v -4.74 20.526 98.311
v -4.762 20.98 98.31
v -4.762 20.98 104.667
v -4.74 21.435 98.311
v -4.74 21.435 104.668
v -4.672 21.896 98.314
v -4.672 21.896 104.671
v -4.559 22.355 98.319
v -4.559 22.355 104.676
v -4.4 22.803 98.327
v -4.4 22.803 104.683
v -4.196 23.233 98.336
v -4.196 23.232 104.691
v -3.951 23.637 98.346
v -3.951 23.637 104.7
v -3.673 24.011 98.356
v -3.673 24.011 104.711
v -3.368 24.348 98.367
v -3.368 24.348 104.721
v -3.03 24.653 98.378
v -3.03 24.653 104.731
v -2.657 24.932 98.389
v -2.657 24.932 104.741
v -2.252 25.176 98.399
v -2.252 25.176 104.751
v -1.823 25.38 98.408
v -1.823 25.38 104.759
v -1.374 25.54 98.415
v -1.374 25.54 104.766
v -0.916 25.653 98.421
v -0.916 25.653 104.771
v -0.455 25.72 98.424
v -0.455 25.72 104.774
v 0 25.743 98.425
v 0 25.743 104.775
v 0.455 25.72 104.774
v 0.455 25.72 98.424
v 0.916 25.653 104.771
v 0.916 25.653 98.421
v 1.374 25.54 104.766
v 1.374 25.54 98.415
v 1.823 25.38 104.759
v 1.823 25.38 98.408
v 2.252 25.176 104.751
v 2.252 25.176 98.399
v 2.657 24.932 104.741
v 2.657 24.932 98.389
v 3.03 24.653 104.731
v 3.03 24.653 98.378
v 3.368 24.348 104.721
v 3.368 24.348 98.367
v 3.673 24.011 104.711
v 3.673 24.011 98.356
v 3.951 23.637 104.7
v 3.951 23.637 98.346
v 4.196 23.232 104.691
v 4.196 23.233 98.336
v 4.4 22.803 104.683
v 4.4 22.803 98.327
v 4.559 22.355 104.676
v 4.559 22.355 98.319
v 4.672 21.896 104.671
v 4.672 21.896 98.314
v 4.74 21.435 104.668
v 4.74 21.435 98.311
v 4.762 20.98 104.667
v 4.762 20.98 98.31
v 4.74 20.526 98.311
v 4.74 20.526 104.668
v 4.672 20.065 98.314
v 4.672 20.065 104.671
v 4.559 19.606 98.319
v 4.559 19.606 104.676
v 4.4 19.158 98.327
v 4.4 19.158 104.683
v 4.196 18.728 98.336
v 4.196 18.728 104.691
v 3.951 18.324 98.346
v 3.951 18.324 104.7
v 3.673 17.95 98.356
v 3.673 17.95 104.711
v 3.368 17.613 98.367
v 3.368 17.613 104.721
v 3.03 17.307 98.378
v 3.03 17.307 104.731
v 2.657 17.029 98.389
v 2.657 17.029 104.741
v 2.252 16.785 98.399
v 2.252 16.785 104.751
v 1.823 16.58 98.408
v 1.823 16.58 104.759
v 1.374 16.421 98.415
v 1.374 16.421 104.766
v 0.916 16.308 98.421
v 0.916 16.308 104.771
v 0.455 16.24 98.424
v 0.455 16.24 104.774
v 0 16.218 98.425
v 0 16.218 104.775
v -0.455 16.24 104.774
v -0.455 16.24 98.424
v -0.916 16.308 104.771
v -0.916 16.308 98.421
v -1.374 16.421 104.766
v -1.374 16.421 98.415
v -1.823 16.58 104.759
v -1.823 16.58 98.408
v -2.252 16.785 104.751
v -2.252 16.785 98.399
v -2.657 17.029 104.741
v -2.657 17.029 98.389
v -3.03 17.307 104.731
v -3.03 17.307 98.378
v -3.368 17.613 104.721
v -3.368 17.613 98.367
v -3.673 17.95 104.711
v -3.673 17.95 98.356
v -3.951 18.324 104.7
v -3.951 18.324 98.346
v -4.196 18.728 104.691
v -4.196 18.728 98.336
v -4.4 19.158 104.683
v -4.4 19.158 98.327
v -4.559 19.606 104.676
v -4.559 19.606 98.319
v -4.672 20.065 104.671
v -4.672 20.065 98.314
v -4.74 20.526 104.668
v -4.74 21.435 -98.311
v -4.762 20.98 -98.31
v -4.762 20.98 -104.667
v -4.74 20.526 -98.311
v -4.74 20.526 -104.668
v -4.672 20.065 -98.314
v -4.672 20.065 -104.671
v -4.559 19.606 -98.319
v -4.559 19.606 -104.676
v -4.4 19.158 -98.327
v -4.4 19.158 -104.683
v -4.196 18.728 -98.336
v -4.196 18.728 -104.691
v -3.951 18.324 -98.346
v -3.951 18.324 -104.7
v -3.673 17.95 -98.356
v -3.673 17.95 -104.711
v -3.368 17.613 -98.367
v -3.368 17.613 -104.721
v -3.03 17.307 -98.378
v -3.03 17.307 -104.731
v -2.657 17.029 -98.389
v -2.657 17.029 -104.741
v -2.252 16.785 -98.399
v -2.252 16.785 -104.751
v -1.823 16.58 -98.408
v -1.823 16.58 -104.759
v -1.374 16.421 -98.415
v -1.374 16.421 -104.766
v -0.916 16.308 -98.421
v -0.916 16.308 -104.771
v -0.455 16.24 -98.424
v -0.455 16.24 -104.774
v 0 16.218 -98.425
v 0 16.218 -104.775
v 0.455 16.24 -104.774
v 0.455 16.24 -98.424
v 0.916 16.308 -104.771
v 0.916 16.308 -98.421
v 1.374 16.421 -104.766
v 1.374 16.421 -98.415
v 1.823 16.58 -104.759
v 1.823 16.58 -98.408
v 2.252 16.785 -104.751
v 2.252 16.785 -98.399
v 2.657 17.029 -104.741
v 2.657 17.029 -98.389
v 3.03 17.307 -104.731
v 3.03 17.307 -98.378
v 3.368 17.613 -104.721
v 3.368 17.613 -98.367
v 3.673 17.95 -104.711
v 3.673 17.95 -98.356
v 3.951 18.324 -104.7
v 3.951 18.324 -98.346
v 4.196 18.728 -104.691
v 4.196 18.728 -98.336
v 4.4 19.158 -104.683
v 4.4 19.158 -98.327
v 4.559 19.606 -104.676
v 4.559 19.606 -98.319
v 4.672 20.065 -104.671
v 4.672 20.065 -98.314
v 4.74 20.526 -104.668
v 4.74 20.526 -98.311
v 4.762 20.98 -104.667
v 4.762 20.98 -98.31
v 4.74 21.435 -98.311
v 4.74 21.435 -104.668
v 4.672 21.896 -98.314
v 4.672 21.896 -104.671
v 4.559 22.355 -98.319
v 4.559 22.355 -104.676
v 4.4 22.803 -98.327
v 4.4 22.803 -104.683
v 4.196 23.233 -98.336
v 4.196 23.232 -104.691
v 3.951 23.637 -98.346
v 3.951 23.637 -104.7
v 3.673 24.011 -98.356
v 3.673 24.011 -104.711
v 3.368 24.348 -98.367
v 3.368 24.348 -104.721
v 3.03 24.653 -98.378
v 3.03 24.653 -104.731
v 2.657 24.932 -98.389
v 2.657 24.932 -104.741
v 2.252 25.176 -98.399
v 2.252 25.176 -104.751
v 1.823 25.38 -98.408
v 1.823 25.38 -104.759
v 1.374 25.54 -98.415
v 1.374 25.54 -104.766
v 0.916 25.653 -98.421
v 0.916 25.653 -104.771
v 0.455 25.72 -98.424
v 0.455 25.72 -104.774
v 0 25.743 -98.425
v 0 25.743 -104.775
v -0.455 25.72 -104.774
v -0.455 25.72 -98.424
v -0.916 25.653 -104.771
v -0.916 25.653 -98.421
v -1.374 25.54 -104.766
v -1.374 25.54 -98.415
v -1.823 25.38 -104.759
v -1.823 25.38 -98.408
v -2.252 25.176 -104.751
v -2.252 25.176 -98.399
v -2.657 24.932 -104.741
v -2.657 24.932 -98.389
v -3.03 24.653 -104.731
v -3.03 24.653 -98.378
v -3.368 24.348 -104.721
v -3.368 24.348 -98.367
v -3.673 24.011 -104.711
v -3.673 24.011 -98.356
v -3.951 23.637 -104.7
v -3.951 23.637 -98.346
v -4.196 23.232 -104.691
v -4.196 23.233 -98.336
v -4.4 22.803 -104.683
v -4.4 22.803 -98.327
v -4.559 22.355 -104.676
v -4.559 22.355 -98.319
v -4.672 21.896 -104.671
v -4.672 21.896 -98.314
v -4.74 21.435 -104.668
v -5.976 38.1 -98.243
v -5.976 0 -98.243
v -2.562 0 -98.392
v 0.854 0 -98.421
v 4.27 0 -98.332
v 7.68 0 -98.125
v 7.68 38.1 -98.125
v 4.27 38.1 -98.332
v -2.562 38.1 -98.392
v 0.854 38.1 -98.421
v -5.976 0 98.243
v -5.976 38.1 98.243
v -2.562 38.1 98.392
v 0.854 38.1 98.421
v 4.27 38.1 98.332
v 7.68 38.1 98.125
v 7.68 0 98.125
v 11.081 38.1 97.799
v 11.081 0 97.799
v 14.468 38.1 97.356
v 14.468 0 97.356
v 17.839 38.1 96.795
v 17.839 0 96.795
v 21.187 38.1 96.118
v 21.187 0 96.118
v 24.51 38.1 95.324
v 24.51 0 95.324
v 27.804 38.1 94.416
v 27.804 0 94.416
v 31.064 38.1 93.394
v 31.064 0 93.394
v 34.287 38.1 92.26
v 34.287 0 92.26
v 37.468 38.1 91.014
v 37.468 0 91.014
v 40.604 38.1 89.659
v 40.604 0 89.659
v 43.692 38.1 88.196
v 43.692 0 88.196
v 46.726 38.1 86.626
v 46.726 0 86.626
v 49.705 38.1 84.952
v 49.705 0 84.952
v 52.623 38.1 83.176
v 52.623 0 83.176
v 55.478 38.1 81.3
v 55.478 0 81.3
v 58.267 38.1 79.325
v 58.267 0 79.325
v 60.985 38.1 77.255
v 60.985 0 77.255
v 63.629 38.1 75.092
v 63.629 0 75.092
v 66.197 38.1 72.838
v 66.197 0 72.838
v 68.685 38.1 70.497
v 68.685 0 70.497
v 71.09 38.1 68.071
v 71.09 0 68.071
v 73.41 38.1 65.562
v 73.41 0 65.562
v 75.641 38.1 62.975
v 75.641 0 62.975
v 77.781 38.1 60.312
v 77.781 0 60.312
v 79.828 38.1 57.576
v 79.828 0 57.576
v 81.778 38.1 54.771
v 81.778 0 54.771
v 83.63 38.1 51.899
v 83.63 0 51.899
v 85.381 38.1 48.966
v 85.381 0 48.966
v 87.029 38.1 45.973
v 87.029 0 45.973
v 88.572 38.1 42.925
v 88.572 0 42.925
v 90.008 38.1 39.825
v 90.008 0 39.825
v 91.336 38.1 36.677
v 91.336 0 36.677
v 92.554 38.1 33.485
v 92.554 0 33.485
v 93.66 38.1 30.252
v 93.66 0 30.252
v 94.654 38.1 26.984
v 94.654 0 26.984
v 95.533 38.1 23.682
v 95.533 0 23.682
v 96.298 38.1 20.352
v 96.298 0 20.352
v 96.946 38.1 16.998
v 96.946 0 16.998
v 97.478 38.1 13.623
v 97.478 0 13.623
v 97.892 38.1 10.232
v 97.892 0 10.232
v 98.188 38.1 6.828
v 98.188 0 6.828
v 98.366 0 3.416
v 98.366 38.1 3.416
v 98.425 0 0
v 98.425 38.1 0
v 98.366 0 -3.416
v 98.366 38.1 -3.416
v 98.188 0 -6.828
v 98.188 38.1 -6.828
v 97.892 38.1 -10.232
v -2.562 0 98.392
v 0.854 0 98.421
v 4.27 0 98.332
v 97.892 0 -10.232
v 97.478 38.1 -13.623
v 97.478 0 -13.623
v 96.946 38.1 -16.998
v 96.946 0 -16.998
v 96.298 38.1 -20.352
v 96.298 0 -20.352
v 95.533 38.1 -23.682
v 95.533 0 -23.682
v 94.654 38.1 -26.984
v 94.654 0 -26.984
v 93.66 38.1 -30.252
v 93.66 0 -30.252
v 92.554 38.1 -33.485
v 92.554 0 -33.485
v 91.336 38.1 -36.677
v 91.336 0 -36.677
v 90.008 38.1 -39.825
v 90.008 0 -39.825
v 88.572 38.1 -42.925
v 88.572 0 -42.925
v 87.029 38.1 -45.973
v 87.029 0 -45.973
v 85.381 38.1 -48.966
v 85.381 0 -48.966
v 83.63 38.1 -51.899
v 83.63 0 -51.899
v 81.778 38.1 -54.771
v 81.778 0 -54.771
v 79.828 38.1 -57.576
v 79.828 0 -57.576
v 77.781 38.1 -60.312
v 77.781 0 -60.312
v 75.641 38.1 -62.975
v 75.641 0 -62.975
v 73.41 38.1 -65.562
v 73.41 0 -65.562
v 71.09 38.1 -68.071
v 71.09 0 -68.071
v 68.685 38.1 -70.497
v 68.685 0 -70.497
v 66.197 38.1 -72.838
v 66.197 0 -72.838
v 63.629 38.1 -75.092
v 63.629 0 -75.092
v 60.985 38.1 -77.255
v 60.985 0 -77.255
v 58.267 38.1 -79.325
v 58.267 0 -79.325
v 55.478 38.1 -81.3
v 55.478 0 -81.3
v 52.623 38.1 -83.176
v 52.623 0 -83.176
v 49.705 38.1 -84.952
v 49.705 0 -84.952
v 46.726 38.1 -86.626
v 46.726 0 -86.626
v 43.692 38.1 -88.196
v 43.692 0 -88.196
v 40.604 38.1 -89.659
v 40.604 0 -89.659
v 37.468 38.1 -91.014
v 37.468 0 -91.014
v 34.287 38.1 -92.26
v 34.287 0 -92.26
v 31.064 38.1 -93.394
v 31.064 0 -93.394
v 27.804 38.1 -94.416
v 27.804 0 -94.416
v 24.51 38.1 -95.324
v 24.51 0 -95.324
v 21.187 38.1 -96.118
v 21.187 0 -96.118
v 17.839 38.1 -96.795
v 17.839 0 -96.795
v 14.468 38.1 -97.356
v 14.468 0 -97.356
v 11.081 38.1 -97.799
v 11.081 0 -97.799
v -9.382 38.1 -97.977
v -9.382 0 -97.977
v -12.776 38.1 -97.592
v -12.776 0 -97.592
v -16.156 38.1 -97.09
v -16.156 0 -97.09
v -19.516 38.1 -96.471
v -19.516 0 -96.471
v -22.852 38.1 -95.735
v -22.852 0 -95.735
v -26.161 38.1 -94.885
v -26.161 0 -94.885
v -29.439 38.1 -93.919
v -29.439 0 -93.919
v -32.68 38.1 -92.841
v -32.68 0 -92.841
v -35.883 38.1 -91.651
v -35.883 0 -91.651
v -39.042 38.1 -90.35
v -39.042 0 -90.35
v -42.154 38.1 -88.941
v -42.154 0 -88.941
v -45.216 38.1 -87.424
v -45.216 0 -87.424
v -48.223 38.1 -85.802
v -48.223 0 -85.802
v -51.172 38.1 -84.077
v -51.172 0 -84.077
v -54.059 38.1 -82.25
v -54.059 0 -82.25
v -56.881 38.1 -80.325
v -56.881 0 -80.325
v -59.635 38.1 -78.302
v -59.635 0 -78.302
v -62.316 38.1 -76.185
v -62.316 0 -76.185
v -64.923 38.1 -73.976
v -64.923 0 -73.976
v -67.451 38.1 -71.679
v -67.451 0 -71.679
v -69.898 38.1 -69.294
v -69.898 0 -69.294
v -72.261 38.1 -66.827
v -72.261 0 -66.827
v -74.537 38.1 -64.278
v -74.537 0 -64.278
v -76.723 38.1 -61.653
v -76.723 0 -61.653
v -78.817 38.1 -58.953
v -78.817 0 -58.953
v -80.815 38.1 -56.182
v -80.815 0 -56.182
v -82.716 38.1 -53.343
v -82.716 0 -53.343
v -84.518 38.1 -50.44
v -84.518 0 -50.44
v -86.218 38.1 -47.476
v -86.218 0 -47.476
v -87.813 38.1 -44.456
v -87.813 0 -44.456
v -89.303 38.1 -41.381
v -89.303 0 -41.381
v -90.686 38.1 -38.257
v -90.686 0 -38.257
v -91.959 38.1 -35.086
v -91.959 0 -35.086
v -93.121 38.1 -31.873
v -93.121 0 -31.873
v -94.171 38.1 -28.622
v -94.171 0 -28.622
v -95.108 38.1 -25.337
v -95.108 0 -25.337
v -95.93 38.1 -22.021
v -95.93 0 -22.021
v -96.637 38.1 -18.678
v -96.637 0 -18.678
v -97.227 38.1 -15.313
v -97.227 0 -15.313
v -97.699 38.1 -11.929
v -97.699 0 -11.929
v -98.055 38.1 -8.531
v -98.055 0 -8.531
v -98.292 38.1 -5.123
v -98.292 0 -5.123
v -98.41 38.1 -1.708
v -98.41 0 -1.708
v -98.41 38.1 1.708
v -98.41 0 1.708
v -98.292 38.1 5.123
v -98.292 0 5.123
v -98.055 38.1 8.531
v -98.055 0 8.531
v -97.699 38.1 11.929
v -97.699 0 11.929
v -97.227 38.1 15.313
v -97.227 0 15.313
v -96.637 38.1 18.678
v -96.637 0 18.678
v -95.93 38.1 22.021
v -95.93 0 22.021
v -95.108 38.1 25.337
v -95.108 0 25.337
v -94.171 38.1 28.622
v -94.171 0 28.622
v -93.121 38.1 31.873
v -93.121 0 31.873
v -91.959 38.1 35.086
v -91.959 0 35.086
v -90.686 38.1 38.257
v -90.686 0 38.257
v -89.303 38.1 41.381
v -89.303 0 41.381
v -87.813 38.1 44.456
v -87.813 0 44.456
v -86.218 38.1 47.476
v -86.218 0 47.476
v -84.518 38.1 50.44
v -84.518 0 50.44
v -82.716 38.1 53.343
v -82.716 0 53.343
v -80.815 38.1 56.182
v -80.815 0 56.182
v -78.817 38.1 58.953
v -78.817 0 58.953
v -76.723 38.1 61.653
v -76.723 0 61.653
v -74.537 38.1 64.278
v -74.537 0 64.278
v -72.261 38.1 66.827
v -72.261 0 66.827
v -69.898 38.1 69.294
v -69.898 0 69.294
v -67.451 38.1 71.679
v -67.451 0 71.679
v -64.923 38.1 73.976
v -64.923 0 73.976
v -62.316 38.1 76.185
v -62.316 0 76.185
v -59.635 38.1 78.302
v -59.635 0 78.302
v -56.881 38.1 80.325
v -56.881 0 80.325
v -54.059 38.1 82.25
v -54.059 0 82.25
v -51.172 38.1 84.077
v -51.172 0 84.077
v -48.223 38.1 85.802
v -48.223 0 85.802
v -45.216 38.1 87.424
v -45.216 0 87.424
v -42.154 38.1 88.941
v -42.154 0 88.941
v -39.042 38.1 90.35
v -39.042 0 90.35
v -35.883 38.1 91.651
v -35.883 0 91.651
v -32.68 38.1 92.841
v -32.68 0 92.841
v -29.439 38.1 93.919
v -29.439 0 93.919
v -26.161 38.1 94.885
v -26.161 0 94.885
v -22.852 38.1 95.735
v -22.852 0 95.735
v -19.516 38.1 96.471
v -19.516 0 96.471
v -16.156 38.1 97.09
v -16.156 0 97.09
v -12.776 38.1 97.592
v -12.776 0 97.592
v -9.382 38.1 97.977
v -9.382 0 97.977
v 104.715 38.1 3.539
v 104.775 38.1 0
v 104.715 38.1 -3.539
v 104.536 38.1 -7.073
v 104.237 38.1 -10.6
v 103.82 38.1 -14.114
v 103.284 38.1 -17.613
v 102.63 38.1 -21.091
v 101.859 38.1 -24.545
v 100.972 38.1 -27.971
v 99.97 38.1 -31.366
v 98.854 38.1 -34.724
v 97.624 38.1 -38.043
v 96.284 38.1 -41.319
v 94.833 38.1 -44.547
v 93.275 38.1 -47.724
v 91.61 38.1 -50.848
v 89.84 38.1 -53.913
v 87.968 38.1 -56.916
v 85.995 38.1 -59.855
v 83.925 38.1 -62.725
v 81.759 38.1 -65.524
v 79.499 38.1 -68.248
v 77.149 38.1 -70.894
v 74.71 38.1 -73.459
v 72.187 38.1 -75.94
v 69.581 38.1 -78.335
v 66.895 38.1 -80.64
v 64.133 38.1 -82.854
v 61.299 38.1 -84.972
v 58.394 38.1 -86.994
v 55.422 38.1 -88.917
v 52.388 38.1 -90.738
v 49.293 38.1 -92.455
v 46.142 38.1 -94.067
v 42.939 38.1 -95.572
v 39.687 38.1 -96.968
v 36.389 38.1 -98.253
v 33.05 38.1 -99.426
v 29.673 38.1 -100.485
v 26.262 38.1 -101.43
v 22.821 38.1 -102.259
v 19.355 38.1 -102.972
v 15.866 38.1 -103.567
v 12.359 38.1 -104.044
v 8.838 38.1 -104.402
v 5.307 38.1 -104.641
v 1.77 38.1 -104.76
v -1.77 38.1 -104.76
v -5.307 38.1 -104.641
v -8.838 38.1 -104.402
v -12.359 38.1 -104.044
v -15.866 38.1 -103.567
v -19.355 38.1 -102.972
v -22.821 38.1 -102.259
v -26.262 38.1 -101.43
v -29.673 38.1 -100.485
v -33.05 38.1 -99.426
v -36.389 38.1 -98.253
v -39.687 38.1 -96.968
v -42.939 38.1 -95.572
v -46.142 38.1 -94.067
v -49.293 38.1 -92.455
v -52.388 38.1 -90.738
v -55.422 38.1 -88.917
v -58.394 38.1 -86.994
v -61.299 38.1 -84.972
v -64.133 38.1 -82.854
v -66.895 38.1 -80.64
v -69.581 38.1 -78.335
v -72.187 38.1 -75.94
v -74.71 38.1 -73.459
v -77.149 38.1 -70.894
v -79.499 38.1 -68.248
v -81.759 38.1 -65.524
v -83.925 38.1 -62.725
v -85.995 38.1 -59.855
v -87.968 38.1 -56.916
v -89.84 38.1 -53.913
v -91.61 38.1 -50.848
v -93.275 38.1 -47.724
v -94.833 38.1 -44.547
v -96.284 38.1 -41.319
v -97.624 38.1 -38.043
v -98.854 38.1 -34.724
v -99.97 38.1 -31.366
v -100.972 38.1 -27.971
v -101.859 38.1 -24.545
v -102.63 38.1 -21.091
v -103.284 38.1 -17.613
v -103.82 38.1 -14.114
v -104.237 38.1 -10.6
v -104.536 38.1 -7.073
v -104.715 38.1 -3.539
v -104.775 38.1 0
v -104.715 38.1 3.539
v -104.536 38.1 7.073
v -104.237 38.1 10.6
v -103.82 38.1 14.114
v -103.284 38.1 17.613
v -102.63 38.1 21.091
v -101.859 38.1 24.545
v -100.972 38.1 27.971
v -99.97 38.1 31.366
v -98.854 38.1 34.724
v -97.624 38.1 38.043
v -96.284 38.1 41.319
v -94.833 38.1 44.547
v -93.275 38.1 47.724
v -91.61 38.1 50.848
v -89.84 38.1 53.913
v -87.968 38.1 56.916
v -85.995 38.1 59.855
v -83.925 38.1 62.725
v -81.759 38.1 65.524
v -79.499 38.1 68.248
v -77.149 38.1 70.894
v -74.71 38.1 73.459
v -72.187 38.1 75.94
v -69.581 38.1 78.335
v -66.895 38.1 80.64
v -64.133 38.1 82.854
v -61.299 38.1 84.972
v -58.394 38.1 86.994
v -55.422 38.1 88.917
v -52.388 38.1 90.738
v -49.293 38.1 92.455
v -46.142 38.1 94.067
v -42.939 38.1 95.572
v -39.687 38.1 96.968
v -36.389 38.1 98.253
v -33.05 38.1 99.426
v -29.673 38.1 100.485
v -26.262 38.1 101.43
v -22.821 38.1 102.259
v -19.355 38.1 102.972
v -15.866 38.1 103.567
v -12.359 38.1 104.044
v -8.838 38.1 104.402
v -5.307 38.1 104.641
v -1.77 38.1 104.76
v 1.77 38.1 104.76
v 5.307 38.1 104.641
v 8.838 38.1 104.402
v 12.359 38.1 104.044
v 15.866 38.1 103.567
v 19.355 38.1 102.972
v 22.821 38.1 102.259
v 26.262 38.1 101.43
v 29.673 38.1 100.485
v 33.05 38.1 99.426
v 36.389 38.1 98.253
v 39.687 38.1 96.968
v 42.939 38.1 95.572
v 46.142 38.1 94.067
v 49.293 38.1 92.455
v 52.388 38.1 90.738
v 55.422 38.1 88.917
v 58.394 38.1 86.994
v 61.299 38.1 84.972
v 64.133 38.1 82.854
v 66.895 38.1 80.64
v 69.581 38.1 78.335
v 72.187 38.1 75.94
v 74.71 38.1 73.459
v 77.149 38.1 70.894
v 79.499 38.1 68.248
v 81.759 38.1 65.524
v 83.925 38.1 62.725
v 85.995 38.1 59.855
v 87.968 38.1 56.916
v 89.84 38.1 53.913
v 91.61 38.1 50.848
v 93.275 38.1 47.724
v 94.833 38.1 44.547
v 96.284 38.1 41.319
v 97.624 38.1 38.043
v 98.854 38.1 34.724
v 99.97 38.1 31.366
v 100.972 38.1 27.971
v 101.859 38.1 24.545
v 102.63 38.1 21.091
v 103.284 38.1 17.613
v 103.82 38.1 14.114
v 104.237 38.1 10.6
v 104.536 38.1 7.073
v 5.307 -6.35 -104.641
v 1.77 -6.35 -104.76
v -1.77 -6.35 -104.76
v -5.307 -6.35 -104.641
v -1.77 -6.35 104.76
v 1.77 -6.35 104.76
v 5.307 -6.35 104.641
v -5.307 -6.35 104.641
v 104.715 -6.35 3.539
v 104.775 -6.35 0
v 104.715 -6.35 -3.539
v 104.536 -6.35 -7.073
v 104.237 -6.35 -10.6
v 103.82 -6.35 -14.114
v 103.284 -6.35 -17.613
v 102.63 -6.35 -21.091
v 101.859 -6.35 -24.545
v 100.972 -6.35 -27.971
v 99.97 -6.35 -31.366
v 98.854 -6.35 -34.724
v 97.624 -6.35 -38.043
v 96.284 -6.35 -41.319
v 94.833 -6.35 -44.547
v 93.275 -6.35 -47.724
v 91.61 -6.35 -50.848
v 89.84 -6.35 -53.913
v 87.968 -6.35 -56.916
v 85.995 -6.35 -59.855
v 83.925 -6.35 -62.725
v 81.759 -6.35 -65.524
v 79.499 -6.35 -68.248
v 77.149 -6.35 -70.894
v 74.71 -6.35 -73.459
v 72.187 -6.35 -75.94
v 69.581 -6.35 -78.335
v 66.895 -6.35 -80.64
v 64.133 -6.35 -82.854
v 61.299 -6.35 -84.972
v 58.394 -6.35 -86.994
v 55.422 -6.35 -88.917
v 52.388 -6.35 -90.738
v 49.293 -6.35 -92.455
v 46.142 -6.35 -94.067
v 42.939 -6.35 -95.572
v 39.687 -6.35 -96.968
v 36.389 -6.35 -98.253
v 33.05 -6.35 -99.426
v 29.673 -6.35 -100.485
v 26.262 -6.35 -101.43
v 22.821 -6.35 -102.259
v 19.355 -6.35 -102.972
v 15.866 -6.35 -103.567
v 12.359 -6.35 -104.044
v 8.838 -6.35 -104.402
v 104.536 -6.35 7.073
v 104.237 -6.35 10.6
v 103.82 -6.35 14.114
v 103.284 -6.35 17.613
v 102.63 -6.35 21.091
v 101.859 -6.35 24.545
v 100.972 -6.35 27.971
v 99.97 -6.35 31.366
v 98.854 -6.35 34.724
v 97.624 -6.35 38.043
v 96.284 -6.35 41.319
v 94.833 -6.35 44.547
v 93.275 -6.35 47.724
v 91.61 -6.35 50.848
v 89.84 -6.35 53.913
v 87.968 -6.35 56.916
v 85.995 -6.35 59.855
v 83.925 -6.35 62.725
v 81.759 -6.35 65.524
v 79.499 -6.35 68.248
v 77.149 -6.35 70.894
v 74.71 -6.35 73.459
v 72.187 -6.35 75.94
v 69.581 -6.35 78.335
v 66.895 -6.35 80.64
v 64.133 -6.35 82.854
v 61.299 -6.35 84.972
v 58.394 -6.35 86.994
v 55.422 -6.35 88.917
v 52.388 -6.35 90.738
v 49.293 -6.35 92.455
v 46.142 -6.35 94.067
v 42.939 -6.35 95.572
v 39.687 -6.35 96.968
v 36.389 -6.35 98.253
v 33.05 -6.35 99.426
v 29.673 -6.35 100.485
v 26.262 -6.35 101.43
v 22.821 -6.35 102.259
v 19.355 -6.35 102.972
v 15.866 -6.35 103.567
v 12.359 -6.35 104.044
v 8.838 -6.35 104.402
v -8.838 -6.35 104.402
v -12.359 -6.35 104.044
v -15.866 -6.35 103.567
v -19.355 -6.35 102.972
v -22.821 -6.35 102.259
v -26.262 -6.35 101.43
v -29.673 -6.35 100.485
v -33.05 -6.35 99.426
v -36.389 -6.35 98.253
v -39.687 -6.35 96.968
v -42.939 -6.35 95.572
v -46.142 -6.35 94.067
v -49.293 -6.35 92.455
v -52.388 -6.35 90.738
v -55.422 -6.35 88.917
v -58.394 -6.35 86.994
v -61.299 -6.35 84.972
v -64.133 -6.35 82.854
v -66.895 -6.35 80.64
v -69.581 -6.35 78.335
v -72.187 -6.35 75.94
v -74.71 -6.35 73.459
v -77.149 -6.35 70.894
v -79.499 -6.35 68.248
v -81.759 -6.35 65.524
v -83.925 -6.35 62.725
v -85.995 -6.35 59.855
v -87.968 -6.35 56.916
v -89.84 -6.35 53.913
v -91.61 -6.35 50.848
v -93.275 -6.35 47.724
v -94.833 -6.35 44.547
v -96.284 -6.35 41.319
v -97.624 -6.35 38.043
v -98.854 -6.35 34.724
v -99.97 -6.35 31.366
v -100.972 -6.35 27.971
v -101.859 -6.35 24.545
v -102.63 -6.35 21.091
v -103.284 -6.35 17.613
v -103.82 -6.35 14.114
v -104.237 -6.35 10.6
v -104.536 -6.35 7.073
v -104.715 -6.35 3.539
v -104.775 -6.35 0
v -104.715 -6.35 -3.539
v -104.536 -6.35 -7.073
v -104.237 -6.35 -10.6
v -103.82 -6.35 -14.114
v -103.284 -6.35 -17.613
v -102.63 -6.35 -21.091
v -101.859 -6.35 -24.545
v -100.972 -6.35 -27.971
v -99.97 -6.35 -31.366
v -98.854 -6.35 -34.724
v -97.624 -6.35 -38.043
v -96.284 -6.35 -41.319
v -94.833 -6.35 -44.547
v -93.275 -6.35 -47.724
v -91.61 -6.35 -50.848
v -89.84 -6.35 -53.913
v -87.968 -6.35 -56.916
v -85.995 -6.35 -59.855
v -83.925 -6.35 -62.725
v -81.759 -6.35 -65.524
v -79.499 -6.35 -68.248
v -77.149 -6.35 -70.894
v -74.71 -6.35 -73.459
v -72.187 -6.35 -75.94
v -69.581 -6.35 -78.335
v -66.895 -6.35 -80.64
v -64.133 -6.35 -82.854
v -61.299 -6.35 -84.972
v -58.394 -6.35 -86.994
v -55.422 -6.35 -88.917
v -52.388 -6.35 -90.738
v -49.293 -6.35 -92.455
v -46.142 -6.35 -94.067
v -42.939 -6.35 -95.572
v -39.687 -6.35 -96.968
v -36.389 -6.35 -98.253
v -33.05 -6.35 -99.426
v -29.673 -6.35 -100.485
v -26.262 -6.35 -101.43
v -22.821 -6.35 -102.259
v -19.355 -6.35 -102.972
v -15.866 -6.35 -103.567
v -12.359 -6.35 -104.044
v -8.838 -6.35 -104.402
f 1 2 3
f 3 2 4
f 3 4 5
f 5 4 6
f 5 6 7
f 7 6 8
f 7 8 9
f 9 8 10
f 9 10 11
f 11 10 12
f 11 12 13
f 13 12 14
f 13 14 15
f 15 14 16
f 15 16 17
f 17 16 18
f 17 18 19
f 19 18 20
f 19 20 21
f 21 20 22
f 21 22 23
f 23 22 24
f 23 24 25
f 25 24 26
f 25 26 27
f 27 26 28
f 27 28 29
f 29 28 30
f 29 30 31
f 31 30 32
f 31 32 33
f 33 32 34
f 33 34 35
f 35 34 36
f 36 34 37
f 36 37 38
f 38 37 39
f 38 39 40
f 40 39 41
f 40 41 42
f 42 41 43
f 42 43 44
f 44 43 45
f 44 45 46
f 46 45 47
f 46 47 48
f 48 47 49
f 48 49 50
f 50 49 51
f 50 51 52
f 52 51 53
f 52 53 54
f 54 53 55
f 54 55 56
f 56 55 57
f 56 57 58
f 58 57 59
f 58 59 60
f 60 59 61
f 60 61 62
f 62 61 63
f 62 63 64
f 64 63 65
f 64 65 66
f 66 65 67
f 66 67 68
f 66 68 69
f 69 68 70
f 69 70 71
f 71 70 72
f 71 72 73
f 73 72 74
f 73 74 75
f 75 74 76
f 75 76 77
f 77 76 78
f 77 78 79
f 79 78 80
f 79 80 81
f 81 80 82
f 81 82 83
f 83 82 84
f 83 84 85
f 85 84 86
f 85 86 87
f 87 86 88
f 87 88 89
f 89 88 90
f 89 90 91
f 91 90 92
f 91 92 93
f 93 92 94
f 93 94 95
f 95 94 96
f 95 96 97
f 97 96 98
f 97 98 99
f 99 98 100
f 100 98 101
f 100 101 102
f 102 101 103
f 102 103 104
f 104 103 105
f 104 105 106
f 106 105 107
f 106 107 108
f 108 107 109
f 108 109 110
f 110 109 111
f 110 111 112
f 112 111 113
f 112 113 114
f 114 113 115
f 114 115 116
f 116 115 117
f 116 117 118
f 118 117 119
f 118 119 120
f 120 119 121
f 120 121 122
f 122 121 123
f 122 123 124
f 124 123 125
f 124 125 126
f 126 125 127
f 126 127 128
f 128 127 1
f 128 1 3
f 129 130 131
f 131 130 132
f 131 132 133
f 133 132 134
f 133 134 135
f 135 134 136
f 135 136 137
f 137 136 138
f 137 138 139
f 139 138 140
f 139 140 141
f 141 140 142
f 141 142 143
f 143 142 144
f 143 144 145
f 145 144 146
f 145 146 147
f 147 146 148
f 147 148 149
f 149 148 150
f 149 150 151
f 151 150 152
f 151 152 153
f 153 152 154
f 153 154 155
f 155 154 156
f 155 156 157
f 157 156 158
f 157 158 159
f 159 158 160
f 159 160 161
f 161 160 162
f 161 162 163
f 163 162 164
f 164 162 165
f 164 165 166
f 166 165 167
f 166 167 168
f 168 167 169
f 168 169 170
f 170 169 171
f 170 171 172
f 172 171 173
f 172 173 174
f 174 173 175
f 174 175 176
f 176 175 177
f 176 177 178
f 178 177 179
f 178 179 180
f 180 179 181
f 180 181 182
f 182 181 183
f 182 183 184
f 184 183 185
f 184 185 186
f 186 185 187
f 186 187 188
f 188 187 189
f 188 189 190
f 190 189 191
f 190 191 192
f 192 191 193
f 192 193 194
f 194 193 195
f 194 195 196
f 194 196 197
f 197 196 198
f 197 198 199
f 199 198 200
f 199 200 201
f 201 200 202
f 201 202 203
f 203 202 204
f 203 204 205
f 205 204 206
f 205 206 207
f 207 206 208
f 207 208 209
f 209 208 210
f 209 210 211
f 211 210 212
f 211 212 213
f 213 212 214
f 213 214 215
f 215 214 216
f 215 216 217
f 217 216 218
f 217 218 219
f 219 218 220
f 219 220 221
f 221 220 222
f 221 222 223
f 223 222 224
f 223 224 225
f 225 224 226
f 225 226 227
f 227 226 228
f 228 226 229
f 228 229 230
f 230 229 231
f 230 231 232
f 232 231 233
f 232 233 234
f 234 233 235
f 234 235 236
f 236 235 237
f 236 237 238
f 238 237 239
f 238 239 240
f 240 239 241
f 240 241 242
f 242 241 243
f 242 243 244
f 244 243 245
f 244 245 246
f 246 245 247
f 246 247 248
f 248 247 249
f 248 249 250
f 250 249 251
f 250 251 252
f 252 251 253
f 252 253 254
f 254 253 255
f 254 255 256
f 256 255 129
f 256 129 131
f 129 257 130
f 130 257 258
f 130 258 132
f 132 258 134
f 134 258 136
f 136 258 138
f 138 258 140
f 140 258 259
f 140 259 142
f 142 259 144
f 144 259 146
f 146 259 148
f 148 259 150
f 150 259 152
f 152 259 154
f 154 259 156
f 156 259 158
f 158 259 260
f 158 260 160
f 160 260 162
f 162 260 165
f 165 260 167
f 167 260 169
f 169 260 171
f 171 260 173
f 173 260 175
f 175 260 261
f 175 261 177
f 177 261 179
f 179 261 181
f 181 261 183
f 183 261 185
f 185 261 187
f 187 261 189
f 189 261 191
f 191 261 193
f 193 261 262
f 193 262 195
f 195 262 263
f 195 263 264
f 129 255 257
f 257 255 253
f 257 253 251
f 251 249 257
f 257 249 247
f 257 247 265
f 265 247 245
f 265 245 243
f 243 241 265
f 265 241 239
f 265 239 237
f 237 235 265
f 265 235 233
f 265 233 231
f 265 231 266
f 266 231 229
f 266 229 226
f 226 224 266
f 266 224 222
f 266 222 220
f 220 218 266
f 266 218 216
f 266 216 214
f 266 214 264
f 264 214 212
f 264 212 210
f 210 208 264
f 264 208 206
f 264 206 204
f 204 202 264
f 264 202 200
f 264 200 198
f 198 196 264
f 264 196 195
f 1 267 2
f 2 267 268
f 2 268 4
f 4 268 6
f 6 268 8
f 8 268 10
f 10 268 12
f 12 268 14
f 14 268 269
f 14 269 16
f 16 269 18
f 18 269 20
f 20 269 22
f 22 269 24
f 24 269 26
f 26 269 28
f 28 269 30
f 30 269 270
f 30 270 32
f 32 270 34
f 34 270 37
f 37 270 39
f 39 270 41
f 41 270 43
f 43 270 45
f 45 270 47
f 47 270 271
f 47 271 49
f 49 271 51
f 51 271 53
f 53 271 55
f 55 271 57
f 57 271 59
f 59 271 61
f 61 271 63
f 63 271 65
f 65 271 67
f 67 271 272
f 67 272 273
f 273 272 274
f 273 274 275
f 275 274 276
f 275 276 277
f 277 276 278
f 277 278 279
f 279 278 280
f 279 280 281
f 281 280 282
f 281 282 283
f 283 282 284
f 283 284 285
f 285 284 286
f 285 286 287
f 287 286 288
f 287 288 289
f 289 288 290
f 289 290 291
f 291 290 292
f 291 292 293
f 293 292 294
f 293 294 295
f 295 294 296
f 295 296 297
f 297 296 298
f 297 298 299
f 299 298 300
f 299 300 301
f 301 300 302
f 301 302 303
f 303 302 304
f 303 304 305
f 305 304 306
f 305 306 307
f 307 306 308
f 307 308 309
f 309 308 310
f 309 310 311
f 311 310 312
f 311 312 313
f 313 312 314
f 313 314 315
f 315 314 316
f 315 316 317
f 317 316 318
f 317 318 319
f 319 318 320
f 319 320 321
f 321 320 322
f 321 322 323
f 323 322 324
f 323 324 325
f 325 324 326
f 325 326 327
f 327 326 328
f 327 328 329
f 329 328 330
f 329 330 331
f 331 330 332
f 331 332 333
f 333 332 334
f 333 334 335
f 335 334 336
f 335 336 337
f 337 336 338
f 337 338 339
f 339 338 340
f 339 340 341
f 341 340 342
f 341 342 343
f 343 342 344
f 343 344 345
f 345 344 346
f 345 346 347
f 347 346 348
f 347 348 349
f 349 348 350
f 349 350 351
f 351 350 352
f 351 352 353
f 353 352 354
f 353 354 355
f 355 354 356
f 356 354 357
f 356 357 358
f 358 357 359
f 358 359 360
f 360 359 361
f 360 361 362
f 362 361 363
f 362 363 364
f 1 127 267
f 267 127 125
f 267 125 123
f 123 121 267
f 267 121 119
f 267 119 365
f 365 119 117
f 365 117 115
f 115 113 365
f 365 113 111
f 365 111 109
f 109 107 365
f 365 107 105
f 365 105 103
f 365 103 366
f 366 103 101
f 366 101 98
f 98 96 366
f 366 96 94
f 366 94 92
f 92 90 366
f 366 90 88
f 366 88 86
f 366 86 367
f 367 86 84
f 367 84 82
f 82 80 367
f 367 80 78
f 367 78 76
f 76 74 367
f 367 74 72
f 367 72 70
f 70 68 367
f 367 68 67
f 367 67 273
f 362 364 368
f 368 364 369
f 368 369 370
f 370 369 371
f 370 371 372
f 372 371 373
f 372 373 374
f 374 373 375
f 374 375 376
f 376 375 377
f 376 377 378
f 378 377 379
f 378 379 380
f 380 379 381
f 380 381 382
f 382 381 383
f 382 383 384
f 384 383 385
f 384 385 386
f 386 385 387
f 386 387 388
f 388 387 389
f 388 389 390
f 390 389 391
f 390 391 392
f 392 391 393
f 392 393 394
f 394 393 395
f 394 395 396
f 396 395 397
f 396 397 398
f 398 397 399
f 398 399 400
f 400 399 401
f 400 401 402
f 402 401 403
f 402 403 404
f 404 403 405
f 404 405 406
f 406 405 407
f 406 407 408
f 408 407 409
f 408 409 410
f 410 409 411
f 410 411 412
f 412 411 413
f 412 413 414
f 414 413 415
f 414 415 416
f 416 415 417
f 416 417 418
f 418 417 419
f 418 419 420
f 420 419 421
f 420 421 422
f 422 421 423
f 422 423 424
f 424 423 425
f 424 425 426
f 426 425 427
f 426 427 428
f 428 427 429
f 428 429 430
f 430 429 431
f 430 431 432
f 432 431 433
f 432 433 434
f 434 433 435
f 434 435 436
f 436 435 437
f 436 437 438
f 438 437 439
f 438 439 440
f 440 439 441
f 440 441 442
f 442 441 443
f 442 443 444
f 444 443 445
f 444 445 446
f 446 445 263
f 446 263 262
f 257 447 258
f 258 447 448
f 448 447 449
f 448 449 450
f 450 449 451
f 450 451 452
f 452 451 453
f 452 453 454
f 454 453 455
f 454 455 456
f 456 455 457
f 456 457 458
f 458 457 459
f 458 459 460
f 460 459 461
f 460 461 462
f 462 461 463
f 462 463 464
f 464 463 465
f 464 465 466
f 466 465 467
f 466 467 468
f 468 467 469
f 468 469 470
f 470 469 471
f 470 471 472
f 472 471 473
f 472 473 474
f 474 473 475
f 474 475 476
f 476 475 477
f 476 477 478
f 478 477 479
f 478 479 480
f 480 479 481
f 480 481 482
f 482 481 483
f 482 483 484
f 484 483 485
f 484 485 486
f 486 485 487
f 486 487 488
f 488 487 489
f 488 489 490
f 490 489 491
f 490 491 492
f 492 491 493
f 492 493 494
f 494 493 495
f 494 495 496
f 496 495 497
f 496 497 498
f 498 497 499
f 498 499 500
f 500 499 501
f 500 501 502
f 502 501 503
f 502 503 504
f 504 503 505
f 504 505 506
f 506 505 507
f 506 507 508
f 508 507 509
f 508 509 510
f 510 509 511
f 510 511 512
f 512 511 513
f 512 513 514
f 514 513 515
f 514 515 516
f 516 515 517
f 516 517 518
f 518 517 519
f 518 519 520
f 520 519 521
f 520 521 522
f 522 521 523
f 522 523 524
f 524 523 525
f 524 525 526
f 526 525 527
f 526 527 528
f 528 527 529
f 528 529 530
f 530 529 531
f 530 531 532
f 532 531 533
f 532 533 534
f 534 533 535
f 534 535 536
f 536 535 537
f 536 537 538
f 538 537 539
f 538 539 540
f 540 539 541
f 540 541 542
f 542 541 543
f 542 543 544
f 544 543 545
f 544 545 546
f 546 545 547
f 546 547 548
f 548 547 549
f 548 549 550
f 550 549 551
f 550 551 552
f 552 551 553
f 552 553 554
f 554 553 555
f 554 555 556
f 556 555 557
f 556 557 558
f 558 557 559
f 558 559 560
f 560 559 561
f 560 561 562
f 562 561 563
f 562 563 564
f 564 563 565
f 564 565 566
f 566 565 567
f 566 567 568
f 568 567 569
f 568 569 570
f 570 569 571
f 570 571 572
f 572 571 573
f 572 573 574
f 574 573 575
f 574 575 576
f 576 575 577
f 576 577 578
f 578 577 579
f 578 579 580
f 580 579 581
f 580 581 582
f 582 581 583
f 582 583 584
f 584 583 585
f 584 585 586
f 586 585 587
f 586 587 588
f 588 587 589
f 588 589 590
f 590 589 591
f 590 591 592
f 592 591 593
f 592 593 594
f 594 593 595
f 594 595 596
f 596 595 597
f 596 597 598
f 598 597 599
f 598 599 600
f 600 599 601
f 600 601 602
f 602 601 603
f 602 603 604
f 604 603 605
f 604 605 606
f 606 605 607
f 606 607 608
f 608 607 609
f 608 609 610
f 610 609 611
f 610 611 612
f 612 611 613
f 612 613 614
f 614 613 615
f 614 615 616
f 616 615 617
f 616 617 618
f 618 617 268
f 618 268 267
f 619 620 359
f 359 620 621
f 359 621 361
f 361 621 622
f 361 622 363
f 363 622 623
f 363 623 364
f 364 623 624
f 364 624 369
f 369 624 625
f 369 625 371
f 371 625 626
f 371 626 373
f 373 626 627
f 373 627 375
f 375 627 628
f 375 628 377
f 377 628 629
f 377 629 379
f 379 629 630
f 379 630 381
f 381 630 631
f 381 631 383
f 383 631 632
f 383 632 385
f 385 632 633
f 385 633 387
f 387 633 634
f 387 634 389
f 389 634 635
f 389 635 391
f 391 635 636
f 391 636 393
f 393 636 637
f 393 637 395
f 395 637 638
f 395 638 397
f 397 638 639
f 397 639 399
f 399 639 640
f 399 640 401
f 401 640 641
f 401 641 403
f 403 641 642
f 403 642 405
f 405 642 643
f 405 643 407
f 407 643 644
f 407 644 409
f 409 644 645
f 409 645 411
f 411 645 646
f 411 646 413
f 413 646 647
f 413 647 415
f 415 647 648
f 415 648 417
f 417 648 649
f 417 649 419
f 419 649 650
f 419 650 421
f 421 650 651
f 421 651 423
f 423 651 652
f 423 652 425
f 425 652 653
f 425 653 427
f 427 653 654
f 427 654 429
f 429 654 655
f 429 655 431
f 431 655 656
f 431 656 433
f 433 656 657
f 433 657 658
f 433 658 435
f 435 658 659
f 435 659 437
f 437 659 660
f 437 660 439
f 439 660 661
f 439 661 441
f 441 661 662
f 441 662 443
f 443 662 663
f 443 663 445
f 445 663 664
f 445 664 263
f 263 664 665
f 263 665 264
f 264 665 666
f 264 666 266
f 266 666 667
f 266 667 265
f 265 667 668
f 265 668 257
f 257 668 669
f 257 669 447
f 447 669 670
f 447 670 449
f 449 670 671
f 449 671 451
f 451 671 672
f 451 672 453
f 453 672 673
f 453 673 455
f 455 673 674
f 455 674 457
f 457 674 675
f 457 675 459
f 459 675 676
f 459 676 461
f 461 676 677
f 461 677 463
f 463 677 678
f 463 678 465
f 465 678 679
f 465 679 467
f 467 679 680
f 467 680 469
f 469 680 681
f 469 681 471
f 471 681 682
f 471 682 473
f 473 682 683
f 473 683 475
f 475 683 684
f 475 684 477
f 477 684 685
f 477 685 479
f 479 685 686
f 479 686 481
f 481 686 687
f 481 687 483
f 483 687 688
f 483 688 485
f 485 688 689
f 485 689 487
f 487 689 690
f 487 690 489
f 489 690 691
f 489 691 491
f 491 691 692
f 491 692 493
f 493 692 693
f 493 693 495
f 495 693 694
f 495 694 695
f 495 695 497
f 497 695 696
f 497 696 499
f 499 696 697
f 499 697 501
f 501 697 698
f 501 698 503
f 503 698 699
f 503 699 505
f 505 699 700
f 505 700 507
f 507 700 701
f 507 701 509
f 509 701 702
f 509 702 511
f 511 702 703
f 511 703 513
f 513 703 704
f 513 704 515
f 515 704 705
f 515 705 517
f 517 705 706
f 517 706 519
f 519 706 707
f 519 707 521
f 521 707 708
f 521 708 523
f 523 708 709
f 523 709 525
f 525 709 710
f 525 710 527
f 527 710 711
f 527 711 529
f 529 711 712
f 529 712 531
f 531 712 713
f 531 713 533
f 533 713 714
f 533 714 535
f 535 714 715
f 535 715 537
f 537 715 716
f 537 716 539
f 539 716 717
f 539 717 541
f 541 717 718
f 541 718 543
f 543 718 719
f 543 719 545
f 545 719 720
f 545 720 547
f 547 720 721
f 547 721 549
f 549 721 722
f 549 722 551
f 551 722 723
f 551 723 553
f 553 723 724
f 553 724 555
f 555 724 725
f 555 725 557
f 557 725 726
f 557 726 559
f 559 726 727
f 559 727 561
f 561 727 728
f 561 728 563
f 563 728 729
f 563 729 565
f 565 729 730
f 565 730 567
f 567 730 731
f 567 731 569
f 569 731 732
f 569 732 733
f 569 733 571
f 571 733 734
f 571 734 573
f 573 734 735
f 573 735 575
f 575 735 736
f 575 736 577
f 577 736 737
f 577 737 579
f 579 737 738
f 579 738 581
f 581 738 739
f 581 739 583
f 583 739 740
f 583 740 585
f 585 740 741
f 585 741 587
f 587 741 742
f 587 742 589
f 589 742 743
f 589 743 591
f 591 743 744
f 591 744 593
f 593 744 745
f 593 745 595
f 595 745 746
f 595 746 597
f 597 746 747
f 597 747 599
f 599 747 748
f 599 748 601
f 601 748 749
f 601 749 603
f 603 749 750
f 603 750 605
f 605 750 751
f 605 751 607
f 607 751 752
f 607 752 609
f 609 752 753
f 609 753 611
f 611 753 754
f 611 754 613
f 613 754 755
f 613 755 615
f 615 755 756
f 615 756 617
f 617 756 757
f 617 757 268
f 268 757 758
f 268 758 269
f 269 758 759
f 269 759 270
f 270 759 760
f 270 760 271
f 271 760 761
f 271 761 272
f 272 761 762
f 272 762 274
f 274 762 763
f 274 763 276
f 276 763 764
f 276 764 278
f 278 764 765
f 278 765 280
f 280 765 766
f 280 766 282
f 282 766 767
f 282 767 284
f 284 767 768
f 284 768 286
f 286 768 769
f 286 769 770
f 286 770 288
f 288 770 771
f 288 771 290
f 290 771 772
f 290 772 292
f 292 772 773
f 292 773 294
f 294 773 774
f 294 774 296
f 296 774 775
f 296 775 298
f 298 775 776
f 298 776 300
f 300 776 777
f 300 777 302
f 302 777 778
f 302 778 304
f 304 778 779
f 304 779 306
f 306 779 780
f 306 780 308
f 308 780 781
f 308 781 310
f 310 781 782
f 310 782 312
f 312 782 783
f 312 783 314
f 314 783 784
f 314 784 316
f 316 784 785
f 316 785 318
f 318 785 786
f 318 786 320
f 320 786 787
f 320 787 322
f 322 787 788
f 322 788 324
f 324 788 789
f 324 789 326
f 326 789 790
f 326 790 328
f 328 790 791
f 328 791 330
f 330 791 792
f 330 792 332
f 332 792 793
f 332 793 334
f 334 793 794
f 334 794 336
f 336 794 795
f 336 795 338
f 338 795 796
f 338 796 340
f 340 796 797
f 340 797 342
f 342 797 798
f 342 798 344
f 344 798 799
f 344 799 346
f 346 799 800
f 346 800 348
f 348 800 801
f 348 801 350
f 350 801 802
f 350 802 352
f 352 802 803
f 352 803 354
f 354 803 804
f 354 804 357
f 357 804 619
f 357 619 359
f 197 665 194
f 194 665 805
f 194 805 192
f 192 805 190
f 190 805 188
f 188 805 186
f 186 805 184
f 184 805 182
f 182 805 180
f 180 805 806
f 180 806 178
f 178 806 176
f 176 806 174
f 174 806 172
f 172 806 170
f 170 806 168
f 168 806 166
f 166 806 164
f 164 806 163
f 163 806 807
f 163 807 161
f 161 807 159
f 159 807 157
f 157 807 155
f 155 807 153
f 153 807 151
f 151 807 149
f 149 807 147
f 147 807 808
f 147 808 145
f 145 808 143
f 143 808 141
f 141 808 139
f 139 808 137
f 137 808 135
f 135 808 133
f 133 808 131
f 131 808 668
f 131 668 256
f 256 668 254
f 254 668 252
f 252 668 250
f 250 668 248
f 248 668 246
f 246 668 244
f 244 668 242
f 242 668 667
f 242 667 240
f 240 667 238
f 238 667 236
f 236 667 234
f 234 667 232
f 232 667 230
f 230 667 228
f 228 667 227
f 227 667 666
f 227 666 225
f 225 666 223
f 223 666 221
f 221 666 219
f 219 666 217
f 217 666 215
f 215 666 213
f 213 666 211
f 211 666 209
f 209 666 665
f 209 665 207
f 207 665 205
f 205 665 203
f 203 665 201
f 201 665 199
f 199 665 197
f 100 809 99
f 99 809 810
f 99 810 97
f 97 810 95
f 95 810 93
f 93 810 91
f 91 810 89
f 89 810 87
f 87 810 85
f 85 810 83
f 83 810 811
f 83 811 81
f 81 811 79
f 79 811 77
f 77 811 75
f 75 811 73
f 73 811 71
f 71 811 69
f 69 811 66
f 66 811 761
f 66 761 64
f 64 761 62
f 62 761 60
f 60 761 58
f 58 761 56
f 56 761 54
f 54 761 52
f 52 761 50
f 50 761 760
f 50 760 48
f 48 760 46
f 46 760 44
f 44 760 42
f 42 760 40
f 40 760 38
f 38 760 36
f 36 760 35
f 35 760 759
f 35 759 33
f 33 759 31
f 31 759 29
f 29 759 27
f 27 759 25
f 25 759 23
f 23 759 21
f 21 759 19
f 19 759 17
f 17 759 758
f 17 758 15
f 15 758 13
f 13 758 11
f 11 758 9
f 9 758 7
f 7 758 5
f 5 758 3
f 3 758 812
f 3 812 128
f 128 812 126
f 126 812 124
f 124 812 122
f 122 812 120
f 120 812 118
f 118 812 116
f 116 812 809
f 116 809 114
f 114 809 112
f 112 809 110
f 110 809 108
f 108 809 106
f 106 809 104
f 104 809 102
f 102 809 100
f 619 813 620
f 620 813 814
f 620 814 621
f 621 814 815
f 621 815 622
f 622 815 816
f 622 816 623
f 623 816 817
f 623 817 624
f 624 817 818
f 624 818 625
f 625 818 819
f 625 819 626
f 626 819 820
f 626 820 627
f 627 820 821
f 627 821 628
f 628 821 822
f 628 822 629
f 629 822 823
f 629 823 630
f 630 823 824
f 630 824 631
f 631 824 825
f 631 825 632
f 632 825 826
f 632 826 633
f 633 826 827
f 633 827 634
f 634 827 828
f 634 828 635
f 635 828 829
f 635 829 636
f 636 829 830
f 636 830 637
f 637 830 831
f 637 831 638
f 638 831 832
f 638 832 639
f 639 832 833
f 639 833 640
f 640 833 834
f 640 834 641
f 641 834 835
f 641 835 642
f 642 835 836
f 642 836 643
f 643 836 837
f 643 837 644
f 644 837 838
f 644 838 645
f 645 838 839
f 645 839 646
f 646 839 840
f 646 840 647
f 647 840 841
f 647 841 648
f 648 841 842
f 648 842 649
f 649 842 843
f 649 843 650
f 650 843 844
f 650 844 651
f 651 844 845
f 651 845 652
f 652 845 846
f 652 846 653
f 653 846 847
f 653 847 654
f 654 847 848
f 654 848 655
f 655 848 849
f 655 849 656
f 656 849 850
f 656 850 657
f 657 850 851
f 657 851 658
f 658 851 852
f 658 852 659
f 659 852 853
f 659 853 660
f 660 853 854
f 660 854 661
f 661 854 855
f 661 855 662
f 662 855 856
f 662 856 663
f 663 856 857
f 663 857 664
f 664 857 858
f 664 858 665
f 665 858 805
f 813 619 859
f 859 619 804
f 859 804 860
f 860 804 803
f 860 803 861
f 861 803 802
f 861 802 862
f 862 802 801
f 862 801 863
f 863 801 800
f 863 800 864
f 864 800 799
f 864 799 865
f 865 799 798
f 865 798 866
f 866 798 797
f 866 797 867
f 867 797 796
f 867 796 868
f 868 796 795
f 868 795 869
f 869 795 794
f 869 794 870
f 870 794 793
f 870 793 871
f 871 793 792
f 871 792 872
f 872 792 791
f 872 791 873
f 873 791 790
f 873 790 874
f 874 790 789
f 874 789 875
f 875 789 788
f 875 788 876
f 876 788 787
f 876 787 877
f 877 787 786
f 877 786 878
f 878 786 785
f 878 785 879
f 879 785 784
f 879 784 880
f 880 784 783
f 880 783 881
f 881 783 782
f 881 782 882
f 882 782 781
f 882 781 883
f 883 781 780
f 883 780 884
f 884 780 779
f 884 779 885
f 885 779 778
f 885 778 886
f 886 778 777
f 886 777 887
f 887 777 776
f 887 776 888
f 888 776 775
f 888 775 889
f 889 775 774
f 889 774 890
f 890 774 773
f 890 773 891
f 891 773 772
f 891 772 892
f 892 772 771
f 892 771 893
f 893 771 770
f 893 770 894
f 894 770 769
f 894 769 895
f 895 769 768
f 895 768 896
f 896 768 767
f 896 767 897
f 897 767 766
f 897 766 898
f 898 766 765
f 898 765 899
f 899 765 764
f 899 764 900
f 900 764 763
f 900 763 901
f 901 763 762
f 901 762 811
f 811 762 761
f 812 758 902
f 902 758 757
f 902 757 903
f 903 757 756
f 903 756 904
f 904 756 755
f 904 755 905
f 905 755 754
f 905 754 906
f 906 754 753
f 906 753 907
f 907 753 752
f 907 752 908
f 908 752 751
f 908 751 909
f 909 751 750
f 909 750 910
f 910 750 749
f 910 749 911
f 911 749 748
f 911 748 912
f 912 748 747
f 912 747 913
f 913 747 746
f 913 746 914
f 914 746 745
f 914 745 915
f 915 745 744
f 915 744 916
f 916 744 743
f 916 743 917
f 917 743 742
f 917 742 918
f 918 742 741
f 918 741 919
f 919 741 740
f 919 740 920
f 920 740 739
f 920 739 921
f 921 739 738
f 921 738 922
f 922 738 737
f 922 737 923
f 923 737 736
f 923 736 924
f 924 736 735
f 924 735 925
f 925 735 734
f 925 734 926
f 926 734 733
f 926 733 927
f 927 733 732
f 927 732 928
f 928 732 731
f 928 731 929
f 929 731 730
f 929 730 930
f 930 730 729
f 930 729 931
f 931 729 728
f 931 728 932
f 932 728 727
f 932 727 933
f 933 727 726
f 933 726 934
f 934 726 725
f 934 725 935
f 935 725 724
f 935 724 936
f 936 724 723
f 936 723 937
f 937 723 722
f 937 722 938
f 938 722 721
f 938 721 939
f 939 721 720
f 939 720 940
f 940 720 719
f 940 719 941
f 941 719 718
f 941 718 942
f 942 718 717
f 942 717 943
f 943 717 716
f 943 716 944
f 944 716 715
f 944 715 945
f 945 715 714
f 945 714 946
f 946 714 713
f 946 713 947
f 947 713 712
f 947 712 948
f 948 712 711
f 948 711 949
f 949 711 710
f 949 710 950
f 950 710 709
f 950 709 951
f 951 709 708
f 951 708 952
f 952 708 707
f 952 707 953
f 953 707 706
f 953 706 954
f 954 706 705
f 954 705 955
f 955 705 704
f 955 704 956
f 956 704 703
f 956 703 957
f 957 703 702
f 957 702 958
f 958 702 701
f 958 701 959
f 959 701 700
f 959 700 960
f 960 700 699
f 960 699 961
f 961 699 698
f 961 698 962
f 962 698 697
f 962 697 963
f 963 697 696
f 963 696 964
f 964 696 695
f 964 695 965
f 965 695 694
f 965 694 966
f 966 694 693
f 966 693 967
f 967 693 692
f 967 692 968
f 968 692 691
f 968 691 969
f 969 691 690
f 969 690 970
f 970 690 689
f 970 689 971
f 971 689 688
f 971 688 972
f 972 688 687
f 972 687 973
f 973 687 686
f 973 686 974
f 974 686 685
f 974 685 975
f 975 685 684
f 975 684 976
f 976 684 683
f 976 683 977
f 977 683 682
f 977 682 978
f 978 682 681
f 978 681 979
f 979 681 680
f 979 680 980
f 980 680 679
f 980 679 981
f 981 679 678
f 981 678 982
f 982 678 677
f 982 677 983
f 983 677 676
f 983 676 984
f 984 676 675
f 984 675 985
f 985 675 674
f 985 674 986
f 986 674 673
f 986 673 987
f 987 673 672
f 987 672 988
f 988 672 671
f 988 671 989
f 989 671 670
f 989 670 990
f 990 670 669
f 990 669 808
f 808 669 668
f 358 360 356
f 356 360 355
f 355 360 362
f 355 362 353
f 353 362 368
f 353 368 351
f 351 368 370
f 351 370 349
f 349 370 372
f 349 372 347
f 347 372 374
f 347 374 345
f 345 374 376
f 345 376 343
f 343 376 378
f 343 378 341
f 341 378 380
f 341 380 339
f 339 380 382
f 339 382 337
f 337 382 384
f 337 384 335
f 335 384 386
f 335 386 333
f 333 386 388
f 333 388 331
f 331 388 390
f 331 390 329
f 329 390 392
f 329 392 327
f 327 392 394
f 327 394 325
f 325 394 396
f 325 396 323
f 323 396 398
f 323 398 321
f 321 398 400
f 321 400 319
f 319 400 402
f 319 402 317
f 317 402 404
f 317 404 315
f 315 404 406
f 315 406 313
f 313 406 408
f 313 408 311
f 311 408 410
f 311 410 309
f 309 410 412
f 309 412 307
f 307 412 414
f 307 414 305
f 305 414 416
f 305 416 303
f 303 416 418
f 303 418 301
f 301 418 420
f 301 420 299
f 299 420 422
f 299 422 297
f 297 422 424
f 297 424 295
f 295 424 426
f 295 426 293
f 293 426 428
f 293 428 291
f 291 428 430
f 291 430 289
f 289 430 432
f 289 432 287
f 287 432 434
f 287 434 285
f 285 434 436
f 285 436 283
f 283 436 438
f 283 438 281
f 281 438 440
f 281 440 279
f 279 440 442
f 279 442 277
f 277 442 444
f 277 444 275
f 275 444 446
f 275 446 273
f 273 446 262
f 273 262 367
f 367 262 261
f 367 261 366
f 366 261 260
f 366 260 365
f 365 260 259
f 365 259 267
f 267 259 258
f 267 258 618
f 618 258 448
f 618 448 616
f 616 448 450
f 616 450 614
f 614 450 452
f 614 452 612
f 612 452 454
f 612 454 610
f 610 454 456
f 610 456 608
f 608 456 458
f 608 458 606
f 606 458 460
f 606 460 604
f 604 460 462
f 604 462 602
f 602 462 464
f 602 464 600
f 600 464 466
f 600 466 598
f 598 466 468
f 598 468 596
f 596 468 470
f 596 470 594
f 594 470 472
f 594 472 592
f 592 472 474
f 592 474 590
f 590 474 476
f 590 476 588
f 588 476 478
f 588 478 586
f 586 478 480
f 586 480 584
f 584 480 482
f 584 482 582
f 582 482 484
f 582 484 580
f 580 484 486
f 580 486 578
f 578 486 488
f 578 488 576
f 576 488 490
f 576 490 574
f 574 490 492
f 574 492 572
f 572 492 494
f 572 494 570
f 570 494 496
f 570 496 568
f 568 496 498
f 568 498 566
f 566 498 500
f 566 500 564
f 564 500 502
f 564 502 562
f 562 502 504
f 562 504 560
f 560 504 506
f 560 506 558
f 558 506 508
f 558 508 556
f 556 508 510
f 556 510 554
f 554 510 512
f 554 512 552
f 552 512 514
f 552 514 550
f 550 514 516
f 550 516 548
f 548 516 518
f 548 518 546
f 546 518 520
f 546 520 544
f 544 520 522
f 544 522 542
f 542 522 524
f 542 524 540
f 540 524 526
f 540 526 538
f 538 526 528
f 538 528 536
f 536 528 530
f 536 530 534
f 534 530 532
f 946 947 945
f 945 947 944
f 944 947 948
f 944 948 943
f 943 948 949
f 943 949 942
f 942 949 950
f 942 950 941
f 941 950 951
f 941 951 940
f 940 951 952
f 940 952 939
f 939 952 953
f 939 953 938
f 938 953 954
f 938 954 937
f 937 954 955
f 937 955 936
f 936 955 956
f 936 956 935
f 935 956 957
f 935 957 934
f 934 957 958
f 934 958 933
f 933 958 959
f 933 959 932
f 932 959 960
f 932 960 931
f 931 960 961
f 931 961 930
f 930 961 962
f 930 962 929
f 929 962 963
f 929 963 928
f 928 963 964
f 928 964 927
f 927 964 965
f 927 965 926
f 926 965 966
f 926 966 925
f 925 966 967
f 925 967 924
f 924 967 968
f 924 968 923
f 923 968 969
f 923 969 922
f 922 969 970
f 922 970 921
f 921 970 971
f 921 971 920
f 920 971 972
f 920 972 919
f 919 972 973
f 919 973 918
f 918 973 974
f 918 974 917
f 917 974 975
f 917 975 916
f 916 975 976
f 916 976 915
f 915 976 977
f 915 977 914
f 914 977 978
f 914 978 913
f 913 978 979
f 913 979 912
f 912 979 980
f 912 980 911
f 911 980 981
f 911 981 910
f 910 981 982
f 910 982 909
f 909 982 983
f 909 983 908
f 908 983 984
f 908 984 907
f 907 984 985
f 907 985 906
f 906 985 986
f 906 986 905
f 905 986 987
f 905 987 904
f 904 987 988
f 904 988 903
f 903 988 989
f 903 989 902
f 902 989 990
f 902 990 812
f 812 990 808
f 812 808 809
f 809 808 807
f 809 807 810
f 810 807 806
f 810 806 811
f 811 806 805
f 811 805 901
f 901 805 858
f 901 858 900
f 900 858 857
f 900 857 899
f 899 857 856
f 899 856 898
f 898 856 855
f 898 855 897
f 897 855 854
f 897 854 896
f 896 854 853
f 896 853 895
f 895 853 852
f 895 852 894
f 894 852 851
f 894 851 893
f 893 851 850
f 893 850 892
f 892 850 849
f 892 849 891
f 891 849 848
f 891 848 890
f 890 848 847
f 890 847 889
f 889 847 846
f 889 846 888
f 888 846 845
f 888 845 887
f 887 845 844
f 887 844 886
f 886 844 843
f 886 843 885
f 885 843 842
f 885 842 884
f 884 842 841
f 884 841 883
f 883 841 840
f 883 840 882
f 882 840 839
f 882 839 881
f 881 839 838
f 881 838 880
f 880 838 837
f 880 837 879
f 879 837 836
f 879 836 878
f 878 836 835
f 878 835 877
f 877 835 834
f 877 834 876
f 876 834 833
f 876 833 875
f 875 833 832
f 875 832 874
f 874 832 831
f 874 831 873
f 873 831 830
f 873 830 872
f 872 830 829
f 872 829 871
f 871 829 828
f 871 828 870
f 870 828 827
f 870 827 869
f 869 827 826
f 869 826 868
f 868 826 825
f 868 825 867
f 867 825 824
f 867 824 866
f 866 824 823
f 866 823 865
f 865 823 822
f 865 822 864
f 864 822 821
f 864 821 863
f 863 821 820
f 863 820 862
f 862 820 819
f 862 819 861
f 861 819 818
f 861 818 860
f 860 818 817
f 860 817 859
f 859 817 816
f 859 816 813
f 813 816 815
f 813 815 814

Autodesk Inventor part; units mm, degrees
ref_plane "YZ Plane" through (0, 0, 0) normal (1, 0, 0) x (0, 1, 0)
ref_plane "XZ Plane" through (0, 0, 0) normal (0, 1, 0) x (-1, 0, 0)
sketch "Sketch1" plane through (0, 0, 0) normal (0, 1, 0) x (-1, 0, 0)
  circle A0 centre (0, 0) radius 104.775
  dimension "d0" = 209.55
extrude "Extrusion1" add sketch "Sketch1" against normal blind 6.35
sketch "Sketch2" plane through (0, 0, 0) normal (0, 1, 0) x (1, 0, 0)
  circle A0 centre (0, 0) radius 104.775 projected
  circle A1 centre (0, 0) radius 104.775
  circle A2 centre (0, 0) radius 98.425
  dimension "d3" = 6.35
extrude "Extrusion2" add sketch "Sketch2" along normal blind 38.1
ref_plane "Work Plane1" through (0, 0, 104.775) normal (0, 0, 1) x (1, 0, 0)
sketch "Sketch3" plane through (0, 0, 104.775) normal (0, 0, 1) x (1, 0, 0)
  circle A0 centre (0, 20.9804) radius 4.7625
  line L0 (104.775, 38.1) -> (-104.775, 38.1) projected
  point P0 (0, 0)
  dimension "d6" = 9.525
  dimension "d7" = 17.1196
extrude "Extrusion3" cut sketch "Sketch3" against normal through all
properties part number "baseForBevelGearMount" material "Polycarbonate, Clear"
